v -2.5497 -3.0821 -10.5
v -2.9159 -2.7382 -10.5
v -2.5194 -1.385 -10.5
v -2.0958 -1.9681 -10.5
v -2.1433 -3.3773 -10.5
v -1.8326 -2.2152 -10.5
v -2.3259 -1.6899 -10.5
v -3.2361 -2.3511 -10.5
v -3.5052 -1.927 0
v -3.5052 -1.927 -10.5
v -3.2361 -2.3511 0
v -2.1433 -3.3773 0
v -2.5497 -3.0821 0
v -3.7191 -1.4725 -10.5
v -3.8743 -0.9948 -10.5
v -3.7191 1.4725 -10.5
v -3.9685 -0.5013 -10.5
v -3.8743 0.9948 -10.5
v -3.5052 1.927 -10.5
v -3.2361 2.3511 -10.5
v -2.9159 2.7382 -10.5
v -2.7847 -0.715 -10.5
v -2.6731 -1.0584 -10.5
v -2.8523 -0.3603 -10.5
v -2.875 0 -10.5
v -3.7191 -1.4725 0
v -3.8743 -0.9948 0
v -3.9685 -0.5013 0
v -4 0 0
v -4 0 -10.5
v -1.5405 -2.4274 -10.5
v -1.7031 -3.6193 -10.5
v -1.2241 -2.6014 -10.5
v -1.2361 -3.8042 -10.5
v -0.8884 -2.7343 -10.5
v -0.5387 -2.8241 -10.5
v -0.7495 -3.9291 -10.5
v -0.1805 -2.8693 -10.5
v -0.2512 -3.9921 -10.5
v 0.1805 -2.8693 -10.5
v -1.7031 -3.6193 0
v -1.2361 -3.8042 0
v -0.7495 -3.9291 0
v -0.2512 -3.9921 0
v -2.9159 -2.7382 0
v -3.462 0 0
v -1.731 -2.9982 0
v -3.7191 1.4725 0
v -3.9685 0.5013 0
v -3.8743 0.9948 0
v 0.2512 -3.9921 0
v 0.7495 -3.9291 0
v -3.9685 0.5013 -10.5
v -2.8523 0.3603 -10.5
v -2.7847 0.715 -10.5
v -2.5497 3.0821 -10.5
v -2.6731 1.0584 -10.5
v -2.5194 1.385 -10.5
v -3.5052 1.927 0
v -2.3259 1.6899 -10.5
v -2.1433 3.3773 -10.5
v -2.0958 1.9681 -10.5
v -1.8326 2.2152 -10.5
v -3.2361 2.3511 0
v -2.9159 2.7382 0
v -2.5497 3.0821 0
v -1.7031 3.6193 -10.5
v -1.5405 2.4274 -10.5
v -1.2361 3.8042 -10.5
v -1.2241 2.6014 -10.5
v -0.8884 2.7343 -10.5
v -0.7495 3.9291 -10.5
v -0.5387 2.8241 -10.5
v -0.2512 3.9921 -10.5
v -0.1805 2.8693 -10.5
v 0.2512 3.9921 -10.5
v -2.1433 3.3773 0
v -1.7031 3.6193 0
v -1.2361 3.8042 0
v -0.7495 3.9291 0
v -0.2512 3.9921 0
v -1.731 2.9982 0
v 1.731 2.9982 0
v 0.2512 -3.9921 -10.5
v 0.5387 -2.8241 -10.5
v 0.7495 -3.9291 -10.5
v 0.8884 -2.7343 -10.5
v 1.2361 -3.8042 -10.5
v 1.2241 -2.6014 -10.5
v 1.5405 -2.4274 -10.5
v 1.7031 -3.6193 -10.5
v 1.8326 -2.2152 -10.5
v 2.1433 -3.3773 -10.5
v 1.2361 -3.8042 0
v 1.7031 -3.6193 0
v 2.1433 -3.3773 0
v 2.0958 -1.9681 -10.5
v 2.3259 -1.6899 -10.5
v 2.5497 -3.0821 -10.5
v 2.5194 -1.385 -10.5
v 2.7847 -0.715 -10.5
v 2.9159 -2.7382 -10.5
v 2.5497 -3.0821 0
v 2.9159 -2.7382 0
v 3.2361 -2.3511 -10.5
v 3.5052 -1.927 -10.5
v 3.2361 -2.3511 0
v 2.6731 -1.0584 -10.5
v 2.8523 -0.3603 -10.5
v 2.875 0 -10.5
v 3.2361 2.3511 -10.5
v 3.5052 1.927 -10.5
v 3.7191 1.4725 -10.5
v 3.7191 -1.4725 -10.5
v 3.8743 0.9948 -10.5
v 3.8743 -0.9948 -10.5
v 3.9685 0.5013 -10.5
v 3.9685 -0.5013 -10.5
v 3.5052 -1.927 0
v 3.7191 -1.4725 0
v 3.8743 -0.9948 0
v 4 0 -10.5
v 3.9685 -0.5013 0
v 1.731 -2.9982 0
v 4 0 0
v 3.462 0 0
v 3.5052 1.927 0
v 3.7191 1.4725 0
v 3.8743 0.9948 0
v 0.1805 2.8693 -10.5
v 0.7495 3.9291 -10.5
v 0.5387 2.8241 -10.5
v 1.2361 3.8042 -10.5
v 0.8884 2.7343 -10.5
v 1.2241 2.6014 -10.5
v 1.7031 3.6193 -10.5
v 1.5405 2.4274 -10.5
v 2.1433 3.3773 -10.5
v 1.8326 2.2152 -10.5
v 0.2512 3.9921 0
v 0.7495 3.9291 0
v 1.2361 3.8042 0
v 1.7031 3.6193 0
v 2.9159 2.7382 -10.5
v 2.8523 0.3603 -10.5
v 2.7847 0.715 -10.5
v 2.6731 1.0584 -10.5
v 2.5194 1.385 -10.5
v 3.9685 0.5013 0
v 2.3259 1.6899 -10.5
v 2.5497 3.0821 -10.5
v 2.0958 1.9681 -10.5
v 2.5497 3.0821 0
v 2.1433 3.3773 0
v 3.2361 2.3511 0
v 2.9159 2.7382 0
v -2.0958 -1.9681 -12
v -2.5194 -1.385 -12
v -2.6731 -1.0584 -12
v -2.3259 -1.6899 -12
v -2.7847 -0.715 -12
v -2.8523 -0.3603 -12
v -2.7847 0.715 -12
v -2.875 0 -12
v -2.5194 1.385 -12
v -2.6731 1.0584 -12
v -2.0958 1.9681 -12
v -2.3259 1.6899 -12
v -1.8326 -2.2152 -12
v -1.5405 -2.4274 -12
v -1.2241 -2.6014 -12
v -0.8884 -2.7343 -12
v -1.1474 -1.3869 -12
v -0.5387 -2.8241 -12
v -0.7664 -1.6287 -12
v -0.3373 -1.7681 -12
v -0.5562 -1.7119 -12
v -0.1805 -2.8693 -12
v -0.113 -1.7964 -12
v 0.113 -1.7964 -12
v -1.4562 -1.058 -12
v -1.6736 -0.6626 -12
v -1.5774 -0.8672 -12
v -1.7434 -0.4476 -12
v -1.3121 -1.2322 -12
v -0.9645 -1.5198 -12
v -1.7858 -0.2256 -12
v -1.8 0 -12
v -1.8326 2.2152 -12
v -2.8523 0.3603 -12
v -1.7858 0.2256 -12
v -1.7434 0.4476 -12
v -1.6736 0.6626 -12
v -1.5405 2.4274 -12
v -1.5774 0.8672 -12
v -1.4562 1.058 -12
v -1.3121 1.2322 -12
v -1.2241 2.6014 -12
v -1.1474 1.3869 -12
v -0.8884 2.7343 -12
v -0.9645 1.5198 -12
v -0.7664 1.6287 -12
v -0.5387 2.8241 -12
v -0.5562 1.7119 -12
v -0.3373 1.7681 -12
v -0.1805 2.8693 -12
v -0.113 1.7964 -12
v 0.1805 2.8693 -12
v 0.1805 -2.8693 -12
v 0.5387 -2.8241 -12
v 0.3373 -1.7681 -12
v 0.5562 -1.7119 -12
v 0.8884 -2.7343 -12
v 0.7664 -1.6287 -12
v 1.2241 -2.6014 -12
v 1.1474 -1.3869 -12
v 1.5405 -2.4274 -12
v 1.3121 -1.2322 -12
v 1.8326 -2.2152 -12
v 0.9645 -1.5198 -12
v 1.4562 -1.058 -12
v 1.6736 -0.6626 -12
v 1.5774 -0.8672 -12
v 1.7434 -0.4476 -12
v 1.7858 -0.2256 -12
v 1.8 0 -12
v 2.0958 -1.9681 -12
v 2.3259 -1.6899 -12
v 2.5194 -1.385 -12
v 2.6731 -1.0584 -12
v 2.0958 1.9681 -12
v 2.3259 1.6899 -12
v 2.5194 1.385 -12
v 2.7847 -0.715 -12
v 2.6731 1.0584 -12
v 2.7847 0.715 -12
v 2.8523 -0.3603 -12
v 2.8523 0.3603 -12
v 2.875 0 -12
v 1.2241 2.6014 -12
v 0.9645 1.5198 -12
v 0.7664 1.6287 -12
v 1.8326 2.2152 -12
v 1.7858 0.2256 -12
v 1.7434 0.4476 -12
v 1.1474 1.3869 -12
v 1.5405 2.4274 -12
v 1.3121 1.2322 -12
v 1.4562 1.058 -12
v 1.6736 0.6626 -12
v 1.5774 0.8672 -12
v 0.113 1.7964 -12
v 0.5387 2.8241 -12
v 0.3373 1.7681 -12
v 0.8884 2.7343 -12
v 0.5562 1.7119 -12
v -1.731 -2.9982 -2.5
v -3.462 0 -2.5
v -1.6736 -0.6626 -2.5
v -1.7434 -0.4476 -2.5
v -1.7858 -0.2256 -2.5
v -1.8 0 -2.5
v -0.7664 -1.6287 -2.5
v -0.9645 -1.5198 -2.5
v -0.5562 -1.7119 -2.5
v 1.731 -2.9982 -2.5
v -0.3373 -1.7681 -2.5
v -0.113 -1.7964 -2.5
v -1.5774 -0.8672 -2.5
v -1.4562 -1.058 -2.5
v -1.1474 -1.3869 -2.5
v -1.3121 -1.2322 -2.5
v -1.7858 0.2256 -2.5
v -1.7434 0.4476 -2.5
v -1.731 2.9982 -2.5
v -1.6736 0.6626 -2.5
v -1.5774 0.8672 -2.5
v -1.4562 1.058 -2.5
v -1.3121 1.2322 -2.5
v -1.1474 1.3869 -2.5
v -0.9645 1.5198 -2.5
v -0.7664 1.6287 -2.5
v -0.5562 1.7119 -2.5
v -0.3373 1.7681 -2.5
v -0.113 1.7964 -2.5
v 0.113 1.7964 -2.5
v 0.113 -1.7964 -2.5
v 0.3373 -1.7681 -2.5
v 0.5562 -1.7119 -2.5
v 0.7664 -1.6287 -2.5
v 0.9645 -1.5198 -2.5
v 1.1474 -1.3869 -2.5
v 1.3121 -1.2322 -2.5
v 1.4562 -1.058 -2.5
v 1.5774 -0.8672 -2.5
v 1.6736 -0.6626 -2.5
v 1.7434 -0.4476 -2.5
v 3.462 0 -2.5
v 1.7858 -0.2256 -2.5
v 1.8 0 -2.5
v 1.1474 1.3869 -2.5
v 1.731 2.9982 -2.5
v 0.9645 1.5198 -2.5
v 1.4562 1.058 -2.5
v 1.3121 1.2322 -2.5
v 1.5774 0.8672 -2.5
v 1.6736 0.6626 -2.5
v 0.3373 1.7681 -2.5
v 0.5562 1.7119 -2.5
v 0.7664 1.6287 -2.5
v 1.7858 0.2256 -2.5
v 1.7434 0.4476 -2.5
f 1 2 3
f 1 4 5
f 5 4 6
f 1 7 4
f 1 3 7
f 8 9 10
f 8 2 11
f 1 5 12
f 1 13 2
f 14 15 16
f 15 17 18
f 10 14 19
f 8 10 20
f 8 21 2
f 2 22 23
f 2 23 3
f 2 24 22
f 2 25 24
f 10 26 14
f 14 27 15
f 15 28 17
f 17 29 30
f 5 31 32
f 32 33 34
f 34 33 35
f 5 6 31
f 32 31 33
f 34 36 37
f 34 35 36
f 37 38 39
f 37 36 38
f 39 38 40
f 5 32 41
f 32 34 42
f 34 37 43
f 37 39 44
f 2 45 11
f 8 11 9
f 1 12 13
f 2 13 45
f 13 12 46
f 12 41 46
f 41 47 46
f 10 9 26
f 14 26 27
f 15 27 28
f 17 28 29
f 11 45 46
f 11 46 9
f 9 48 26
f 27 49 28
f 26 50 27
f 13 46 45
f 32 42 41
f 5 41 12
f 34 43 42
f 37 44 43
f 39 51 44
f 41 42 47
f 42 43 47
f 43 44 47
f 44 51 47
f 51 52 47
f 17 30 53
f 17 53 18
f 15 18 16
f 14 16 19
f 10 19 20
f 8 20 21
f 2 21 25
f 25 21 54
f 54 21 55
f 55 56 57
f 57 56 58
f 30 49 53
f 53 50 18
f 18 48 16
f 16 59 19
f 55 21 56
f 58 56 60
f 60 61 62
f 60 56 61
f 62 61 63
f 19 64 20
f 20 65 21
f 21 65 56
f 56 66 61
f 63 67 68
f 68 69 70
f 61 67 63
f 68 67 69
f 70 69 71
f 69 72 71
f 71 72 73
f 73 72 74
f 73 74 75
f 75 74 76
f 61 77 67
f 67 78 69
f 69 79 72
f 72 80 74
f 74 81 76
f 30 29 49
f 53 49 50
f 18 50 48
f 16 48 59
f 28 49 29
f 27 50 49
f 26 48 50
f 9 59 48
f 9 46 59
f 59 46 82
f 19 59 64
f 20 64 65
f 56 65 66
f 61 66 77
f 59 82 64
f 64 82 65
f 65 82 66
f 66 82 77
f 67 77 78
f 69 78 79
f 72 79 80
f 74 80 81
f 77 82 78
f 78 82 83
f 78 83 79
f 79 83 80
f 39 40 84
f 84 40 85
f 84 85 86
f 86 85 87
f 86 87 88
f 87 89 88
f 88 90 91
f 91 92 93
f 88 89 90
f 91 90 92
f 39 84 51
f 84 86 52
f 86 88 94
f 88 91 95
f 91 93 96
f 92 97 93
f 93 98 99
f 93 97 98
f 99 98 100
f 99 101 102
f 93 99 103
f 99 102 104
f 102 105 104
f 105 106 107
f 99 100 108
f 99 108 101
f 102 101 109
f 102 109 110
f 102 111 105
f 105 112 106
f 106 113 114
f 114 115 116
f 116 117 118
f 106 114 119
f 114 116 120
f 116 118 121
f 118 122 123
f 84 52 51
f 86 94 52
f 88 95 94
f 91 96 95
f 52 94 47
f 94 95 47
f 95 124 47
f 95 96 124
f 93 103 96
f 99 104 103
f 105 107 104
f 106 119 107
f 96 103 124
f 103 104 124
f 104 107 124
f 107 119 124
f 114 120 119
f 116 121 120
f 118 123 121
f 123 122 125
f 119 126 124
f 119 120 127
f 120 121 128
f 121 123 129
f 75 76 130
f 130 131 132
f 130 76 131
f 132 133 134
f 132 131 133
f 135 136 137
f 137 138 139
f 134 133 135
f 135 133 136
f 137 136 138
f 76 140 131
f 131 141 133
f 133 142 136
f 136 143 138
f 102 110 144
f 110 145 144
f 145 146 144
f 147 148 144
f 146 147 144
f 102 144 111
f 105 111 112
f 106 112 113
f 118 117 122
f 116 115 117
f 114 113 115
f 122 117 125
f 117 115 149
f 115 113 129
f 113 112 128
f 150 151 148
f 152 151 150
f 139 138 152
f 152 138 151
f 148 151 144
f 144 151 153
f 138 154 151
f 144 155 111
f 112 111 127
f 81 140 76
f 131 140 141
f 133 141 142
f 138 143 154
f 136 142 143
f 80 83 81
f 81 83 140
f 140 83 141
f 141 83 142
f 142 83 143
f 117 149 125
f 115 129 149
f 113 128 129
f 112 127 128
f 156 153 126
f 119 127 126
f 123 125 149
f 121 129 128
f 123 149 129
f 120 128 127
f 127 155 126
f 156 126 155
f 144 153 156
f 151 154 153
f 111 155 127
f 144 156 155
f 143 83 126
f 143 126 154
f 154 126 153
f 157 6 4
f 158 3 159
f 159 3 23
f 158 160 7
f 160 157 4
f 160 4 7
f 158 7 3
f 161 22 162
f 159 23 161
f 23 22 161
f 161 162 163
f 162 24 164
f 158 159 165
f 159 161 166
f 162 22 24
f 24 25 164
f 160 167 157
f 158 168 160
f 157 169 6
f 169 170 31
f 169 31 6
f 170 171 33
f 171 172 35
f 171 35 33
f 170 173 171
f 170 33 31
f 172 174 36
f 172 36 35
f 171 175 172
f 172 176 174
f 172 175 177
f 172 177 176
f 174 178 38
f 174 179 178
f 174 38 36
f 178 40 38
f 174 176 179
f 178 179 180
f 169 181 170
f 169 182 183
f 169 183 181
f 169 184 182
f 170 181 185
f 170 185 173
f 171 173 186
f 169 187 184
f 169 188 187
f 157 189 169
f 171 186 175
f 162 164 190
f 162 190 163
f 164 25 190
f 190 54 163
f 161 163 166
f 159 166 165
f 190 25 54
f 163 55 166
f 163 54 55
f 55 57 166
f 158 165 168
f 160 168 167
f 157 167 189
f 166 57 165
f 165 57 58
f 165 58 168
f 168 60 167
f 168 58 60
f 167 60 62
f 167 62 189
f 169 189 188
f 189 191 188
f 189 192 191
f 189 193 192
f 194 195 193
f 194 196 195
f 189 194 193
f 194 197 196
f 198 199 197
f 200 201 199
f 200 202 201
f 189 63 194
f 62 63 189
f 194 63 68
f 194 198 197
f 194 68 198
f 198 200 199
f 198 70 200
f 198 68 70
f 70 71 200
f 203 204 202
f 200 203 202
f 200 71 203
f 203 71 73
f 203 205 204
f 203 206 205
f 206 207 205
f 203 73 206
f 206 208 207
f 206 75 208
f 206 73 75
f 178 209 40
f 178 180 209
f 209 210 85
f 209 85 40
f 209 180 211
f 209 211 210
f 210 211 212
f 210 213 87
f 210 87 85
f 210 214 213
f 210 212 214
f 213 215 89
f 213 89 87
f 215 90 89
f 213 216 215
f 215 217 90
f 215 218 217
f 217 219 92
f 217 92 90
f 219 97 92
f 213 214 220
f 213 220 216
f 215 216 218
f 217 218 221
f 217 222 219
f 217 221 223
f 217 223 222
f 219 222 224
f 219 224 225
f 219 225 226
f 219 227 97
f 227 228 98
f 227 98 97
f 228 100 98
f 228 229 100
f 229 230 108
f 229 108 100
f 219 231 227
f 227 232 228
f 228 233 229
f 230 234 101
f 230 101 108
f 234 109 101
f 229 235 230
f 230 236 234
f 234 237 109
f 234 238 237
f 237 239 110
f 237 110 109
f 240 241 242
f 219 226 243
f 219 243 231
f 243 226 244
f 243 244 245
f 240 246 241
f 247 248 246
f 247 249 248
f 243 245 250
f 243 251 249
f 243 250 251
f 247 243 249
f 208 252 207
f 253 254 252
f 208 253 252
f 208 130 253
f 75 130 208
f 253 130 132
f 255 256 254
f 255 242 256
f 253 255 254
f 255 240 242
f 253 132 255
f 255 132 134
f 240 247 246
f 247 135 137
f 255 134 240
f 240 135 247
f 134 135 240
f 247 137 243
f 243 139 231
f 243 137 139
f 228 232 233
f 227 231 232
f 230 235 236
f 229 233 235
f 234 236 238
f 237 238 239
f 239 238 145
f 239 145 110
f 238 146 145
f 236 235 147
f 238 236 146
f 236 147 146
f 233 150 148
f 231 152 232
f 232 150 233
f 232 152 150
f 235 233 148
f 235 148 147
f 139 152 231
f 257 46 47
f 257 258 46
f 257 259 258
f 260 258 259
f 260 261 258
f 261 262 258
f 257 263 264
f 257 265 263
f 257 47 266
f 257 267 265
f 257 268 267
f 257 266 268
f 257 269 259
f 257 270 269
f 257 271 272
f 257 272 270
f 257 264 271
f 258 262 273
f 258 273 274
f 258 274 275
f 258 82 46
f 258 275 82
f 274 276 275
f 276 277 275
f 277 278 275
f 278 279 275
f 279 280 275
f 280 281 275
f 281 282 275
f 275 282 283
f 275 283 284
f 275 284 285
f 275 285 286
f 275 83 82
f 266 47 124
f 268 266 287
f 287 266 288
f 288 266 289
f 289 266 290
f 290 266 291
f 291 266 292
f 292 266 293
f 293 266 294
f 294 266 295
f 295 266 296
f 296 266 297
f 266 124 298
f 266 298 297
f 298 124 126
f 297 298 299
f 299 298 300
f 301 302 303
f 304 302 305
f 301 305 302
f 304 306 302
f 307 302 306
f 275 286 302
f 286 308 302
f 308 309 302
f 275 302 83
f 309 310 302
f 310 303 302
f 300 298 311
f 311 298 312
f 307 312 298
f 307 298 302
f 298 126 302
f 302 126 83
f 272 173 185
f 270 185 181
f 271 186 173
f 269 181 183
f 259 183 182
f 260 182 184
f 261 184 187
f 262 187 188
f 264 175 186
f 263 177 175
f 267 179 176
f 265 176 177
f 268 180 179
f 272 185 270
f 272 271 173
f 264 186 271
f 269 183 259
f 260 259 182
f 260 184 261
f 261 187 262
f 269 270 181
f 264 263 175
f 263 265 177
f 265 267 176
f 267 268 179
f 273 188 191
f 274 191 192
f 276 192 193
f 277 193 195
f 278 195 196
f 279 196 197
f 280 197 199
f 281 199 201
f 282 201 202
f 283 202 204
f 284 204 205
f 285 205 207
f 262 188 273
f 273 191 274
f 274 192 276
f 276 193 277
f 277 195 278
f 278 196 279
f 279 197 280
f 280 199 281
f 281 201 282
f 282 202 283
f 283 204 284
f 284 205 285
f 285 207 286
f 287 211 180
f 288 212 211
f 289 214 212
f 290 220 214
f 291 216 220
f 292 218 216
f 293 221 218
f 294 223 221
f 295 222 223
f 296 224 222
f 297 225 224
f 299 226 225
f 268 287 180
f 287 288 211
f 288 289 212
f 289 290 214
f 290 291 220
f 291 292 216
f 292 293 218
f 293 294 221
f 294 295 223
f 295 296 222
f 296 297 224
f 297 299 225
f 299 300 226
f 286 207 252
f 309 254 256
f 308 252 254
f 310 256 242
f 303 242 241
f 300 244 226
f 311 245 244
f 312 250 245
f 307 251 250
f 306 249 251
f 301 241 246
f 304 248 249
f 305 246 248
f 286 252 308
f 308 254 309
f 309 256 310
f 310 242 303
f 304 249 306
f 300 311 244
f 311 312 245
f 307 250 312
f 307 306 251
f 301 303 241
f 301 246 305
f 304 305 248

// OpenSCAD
$fn = 50;

difference() {
	union() {
		translate(v = [0, 0, -10.5]) {
			cylinder(h = 10.5, r = 4.0);
		}
		#translate(v = [0, 0, -12.0]) {
			cylinder(h = 12, r = 2.875);
		}
	}
	union() {
		translate(v = [0, 0, 0]) {
			rotate(a = [0, 0, 0]) {
				difference() {
					union() {
						translate(v = [0, 0, -2.5]) {
							linear_extrude(height = 2.5) {
								polygon(points = [[3.4619999999999997, 0.0], [1.7310000000000003, 2.9981799479017264], [-1.7309999999999992, 2.9981799479017264], [-3.4619999999999997, 4.2397272186481365e-16], [-1.7310000000000014, -2.998179947901726], [1.7309999999999977, -2.9981799479017277]]);
							}
						}
					}
					union();
				}
			}
		}
		#translate(v = [0, 0, -100.0]) {
			cylinder(h = 200, r = 1.8);
		}
	}
}
